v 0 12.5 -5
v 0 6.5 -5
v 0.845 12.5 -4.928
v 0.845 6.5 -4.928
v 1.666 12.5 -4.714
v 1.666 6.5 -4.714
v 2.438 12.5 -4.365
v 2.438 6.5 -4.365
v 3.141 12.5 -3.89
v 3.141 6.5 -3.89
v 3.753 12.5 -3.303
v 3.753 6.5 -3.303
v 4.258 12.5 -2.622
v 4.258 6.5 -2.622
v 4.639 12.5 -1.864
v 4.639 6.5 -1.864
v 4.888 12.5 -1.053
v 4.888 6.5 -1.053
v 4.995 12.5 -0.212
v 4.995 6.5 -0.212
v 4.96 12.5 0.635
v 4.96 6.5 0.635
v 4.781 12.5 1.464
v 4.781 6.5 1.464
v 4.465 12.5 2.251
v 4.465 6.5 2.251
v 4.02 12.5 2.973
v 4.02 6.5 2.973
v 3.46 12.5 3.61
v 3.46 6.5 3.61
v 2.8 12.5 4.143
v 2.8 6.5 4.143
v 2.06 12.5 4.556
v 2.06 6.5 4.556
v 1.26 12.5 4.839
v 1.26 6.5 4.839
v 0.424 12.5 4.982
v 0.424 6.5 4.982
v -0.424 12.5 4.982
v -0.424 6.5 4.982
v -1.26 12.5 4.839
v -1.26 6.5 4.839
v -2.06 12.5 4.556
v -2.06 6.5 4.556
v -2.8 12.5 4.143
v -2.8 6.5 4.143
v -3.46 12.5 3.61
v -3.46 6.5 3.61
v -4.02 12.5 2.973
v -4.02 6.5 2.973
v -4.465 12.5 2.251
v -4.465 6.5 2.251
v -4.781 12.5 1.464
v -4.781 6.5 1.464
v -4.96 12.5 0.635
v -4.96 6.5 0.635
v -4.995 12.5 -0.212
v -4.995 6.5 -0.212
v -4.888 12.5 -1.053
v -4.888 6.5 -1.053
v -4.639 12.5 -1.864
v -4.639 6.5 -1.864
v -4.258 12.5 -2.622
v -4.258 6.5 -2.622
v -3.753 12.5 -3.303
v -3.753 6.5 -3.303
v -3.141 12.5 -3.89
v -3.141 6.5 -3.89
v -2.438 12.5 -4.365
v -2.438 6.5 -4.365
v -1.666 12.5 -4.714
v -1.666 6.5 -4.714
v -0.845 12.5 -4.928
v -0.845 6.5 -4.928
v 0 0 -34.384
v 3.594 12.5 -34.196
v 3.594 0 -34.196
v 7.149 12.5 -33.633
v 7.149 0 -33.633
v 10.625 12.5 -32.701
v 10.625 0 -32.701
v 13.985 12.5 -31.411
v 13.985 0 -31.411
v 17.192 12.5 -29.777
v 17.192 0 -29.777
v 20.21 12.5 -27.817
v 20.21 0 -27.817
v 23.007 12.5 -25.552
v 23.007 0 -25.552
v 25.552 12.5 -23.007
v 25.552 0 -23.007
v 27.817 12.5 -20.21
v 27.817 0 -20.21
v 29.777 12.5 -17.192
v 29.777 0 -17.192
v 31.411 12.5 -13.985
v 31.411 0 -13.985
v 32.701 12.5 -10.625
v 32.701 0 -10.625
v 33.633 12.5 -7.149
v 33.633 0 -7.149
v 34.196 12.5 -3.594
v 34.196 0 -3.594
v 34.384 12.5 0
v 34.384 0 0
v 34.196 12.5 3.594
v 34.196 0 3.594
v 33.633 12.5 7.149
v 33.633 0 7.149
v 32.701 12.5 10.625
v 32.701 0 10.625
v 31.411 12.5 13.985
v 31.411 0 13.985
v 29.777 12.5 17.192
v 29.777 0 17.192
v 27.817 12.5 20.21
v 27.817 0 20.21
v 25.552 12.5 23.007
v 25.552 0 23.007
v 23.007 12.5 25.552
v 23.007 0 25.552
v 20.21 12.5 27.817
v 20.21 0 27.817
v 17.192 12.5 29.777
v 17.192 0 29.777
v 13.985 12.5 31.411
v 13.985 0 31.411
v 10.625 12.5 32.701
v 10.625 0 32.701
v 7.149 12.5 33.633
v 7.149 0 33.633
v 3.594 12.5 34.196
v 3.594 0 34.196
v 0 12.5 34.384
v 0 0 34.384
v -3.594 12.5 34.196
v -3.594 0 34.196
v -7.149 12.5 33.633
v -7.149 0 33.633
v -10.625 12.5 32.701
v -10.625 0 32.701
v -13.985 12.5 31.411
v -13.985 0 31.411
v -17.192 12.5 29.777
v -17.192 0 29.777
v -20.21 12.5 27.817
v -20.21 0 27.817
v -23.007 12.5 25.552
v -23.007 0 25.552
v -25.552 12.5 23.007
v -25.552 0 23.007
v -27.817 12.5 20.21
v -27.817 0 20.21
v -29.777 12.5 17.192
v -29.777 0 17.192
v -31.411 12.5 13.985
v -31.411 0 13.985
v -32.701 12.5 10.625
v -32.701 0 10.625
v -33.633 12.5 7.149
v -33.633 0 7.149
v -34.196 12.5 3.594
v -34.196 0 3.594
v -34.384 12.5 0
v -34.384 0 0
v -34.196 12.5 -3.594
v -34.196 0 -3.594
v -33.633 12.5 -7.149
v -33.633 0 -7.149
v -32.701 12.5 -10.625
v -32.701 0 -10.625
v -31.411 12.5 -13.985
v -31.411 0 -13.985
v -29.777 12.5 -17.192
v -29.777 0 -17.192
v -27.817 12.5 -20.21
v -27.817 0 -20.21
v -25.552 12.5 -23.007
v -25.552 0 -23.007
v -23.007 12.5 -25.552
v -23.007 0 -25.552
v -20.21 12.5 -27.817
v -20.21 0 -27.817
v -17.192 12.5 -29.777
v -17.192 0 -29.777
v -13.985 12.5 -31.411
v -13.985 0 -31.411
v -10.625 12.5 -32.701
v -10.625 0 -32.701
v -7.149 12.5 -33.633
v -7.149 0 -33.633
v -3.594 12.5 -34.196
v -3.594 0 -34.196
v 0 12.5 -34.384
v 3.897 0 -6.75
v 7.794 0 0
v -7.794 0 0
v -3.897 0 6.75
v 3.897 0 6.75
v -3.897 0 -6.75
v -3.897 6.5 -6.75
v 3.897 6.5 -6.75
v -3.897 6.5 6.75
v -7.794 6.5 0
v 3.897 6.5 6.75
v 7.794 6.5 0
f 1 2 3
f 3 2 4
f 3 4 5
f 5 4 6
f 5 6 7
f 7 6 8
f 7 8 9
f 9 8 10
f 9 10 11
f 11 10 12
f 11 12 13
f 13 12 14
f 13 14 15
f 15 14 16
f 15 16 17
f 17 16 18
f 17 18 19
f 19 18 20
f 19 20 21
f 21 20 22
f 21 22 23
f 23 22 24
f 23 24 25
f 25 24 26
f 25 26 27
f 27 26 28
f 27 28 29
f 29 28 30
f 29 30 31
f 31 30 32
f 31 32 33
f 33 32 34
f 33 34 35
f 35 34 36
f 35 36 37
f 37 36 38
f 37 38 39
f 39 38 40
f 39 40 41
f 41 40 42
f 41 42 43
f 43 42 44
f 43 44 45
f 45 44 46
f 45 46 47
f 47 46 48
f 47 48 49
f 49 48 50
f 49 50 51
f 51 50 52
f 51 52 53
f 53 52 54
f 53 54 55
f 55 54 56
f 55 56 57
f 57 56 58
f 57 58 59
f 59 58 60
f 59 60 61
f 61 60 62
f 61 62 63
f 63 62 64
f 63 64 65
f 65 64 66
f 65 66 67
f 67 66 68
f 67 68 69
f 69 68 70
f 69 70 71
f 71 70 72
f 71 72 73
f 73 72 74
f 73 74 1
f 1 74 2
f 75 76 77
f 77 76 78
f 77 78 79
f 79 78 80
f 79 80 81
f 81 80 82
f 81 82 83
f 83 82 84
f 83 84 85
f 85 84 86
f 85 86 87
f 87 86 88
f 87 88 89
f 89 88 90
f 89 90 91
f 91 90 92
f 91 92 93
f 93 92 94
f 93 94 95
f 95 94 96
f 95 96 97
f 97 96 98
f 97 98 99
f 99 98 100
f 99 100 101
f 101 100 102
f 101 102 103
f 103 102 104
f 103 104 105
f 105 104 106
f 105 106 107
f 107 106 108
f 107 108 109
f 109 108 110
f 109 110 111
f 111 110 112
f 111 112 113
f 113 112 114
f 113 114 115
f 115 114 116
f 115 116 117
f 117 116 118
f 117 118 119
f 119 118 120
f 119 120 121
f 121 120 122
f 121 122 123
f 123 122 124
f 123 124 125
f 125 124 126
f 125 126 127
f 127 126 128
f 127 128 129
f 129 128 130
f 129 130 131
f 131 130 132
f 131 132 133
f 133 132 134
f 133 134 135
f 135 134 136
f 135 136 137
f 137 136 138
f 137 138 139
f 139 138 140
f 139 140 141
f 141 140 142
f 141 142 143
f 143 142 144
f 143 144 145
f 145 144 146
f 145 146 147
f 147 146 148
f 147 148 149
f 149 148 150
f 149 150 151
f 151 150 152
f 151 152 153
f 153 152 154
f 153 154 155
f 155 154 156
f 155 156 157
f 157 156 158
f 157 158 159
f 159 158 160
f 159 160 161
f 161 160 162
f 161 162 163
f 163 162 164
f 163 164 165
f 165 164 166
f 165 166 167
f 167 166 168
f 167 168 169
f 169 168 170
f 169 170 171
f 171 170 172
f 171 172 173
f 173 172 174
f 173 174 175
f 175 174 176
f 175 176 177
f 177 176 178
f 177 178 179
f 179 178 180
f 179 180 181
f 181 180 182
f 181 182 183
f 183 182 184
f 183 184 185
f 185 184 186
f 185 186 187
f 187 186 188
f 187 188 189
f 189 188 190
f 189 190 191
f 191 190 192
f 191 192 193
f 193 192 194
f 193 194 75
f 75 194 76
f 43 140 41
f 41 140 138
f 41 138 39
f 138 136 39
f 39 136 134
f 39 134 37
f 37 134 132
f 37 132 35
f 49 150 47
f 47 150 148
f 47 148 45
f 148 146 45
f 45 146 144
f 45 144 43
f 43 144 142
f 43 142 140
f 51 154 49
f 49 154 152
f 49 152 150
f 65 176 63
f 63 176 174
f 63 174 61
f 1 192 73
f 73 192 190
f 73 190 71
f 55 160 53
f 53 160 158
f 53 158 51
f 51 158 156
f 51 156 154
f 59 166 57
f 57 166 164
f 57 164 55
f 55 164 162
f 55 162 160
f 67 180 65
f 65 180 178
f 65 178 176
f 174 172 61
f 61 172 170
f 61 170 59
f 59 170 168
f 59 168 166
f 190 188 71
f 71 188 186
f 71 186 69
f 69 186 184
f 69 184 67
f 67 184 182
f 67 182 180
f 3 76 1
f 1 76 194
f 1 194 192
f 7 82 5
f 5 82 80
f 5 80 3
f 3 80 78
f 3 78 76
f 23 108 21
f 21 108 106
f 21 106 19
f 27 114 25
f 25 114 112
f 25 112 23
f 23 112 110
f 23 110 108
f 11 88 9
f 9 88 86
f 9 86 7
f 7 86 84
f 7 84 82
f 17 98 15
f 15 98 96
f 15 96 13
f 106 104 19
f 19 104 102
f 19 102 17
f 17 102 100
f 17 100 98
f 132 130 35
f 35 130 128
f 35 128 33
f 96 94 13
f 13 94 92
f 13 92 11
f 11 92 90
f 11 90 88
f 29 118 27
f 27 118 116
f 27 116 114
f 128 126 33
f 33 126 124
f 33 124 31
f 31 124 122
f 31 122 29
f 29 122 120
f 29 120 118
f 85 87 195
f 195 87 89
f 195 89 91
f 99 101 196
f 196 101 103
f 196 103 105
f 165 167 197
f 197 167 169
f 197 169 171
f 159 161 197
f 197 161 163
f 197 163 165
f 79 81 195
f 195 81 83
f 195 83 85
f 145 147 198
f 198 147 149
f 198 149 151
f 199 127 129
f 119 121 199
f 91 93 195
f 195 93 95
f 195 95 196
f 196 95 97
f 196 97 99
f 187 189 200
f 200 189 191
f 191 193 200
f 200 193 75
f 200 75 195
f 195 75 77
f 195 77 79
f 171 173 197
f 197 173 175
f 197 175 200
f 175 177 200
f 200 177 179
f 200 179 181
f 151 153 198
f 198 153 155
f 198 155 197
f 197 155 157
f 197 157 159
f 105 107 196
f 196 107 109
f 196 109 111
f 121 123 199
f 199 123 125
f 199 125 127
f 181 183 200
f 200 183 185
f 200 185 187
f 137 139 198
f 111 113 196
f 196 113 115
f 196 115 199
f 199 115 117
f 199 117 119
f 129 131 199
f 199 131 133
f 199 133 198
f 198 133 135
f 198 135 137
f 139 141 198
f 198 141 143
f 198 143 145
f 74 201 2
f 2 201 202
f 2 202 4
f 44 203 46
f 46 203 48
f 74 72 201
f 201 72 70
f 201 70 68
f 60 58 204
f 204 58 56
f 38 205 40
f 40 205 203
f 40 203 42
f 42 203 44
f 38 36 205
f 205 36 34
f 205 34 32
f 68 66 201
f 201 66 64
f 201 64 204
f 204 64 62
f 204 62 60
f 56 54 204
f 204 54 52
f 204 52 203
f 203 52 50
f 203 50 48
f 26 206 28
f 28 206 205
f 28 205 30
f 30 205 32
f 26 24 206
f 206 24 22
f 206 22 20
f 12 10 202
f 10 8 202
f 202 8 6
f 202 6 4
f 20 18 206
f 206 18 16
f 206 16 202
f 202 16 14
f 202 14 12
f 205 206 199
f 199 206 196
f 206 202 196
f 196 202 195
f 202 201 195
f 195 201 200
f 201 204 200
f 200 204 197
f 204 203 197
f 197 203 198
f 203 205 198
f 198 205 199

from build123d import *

# Parameters (mm, degrees)
SKETCH1_R              = 34.384
BOSS_EXTRUDE1_DEPTH    = 12.5
F_10_0MM_DOWEL_HOLE1_D = 10
CUT_EXTRUDE1_DEPTH     = 6.5


with BuildPart() as part:
    # Sketch1 → Boss-Extrude1 (new body)
    with BuildSketch(Plane(origin=(0, 0, 0), x_dir=(1, 0, 0), z_dir=(0, 1, 0))):
        with Locations(Location((0, 0, 0), (0, 0, 270))):
            Circle(SKETCH1_R)
    extrude(amount=BOSS_EXTRUDE1_DEPTH)

    # Ø10.0mm Dowel Hole1 (through all)
    with Locations(Plane(origin=(0, 0, 0), x_dir=(-1, 0, 0), z_dir=(0, -1, 0))):
        with Locations((0, 0)):
            Hole(F_10_0MM_DOWEL_HOLE1_D / 2)

    # Sketch4 → Cut-Extrude1 (cut)
    with BuildSketch(Plane(origin=(0, 0, 0), x_dir=(-1, 0, 0), z_dir=(0, -1, 0))):
        Polygon((-3.897114317, -6.75), (3.897114317, -6.75), (7.794228634, 0), (3.897114317, 6.75), (-3.897114317, 6.75), (-7.794228634, 0), align=None)
    extrude(amount=-CUT_EXTRUDE1_DEPTH, mode=Mode.SUBTRACT)


solid = part.part
